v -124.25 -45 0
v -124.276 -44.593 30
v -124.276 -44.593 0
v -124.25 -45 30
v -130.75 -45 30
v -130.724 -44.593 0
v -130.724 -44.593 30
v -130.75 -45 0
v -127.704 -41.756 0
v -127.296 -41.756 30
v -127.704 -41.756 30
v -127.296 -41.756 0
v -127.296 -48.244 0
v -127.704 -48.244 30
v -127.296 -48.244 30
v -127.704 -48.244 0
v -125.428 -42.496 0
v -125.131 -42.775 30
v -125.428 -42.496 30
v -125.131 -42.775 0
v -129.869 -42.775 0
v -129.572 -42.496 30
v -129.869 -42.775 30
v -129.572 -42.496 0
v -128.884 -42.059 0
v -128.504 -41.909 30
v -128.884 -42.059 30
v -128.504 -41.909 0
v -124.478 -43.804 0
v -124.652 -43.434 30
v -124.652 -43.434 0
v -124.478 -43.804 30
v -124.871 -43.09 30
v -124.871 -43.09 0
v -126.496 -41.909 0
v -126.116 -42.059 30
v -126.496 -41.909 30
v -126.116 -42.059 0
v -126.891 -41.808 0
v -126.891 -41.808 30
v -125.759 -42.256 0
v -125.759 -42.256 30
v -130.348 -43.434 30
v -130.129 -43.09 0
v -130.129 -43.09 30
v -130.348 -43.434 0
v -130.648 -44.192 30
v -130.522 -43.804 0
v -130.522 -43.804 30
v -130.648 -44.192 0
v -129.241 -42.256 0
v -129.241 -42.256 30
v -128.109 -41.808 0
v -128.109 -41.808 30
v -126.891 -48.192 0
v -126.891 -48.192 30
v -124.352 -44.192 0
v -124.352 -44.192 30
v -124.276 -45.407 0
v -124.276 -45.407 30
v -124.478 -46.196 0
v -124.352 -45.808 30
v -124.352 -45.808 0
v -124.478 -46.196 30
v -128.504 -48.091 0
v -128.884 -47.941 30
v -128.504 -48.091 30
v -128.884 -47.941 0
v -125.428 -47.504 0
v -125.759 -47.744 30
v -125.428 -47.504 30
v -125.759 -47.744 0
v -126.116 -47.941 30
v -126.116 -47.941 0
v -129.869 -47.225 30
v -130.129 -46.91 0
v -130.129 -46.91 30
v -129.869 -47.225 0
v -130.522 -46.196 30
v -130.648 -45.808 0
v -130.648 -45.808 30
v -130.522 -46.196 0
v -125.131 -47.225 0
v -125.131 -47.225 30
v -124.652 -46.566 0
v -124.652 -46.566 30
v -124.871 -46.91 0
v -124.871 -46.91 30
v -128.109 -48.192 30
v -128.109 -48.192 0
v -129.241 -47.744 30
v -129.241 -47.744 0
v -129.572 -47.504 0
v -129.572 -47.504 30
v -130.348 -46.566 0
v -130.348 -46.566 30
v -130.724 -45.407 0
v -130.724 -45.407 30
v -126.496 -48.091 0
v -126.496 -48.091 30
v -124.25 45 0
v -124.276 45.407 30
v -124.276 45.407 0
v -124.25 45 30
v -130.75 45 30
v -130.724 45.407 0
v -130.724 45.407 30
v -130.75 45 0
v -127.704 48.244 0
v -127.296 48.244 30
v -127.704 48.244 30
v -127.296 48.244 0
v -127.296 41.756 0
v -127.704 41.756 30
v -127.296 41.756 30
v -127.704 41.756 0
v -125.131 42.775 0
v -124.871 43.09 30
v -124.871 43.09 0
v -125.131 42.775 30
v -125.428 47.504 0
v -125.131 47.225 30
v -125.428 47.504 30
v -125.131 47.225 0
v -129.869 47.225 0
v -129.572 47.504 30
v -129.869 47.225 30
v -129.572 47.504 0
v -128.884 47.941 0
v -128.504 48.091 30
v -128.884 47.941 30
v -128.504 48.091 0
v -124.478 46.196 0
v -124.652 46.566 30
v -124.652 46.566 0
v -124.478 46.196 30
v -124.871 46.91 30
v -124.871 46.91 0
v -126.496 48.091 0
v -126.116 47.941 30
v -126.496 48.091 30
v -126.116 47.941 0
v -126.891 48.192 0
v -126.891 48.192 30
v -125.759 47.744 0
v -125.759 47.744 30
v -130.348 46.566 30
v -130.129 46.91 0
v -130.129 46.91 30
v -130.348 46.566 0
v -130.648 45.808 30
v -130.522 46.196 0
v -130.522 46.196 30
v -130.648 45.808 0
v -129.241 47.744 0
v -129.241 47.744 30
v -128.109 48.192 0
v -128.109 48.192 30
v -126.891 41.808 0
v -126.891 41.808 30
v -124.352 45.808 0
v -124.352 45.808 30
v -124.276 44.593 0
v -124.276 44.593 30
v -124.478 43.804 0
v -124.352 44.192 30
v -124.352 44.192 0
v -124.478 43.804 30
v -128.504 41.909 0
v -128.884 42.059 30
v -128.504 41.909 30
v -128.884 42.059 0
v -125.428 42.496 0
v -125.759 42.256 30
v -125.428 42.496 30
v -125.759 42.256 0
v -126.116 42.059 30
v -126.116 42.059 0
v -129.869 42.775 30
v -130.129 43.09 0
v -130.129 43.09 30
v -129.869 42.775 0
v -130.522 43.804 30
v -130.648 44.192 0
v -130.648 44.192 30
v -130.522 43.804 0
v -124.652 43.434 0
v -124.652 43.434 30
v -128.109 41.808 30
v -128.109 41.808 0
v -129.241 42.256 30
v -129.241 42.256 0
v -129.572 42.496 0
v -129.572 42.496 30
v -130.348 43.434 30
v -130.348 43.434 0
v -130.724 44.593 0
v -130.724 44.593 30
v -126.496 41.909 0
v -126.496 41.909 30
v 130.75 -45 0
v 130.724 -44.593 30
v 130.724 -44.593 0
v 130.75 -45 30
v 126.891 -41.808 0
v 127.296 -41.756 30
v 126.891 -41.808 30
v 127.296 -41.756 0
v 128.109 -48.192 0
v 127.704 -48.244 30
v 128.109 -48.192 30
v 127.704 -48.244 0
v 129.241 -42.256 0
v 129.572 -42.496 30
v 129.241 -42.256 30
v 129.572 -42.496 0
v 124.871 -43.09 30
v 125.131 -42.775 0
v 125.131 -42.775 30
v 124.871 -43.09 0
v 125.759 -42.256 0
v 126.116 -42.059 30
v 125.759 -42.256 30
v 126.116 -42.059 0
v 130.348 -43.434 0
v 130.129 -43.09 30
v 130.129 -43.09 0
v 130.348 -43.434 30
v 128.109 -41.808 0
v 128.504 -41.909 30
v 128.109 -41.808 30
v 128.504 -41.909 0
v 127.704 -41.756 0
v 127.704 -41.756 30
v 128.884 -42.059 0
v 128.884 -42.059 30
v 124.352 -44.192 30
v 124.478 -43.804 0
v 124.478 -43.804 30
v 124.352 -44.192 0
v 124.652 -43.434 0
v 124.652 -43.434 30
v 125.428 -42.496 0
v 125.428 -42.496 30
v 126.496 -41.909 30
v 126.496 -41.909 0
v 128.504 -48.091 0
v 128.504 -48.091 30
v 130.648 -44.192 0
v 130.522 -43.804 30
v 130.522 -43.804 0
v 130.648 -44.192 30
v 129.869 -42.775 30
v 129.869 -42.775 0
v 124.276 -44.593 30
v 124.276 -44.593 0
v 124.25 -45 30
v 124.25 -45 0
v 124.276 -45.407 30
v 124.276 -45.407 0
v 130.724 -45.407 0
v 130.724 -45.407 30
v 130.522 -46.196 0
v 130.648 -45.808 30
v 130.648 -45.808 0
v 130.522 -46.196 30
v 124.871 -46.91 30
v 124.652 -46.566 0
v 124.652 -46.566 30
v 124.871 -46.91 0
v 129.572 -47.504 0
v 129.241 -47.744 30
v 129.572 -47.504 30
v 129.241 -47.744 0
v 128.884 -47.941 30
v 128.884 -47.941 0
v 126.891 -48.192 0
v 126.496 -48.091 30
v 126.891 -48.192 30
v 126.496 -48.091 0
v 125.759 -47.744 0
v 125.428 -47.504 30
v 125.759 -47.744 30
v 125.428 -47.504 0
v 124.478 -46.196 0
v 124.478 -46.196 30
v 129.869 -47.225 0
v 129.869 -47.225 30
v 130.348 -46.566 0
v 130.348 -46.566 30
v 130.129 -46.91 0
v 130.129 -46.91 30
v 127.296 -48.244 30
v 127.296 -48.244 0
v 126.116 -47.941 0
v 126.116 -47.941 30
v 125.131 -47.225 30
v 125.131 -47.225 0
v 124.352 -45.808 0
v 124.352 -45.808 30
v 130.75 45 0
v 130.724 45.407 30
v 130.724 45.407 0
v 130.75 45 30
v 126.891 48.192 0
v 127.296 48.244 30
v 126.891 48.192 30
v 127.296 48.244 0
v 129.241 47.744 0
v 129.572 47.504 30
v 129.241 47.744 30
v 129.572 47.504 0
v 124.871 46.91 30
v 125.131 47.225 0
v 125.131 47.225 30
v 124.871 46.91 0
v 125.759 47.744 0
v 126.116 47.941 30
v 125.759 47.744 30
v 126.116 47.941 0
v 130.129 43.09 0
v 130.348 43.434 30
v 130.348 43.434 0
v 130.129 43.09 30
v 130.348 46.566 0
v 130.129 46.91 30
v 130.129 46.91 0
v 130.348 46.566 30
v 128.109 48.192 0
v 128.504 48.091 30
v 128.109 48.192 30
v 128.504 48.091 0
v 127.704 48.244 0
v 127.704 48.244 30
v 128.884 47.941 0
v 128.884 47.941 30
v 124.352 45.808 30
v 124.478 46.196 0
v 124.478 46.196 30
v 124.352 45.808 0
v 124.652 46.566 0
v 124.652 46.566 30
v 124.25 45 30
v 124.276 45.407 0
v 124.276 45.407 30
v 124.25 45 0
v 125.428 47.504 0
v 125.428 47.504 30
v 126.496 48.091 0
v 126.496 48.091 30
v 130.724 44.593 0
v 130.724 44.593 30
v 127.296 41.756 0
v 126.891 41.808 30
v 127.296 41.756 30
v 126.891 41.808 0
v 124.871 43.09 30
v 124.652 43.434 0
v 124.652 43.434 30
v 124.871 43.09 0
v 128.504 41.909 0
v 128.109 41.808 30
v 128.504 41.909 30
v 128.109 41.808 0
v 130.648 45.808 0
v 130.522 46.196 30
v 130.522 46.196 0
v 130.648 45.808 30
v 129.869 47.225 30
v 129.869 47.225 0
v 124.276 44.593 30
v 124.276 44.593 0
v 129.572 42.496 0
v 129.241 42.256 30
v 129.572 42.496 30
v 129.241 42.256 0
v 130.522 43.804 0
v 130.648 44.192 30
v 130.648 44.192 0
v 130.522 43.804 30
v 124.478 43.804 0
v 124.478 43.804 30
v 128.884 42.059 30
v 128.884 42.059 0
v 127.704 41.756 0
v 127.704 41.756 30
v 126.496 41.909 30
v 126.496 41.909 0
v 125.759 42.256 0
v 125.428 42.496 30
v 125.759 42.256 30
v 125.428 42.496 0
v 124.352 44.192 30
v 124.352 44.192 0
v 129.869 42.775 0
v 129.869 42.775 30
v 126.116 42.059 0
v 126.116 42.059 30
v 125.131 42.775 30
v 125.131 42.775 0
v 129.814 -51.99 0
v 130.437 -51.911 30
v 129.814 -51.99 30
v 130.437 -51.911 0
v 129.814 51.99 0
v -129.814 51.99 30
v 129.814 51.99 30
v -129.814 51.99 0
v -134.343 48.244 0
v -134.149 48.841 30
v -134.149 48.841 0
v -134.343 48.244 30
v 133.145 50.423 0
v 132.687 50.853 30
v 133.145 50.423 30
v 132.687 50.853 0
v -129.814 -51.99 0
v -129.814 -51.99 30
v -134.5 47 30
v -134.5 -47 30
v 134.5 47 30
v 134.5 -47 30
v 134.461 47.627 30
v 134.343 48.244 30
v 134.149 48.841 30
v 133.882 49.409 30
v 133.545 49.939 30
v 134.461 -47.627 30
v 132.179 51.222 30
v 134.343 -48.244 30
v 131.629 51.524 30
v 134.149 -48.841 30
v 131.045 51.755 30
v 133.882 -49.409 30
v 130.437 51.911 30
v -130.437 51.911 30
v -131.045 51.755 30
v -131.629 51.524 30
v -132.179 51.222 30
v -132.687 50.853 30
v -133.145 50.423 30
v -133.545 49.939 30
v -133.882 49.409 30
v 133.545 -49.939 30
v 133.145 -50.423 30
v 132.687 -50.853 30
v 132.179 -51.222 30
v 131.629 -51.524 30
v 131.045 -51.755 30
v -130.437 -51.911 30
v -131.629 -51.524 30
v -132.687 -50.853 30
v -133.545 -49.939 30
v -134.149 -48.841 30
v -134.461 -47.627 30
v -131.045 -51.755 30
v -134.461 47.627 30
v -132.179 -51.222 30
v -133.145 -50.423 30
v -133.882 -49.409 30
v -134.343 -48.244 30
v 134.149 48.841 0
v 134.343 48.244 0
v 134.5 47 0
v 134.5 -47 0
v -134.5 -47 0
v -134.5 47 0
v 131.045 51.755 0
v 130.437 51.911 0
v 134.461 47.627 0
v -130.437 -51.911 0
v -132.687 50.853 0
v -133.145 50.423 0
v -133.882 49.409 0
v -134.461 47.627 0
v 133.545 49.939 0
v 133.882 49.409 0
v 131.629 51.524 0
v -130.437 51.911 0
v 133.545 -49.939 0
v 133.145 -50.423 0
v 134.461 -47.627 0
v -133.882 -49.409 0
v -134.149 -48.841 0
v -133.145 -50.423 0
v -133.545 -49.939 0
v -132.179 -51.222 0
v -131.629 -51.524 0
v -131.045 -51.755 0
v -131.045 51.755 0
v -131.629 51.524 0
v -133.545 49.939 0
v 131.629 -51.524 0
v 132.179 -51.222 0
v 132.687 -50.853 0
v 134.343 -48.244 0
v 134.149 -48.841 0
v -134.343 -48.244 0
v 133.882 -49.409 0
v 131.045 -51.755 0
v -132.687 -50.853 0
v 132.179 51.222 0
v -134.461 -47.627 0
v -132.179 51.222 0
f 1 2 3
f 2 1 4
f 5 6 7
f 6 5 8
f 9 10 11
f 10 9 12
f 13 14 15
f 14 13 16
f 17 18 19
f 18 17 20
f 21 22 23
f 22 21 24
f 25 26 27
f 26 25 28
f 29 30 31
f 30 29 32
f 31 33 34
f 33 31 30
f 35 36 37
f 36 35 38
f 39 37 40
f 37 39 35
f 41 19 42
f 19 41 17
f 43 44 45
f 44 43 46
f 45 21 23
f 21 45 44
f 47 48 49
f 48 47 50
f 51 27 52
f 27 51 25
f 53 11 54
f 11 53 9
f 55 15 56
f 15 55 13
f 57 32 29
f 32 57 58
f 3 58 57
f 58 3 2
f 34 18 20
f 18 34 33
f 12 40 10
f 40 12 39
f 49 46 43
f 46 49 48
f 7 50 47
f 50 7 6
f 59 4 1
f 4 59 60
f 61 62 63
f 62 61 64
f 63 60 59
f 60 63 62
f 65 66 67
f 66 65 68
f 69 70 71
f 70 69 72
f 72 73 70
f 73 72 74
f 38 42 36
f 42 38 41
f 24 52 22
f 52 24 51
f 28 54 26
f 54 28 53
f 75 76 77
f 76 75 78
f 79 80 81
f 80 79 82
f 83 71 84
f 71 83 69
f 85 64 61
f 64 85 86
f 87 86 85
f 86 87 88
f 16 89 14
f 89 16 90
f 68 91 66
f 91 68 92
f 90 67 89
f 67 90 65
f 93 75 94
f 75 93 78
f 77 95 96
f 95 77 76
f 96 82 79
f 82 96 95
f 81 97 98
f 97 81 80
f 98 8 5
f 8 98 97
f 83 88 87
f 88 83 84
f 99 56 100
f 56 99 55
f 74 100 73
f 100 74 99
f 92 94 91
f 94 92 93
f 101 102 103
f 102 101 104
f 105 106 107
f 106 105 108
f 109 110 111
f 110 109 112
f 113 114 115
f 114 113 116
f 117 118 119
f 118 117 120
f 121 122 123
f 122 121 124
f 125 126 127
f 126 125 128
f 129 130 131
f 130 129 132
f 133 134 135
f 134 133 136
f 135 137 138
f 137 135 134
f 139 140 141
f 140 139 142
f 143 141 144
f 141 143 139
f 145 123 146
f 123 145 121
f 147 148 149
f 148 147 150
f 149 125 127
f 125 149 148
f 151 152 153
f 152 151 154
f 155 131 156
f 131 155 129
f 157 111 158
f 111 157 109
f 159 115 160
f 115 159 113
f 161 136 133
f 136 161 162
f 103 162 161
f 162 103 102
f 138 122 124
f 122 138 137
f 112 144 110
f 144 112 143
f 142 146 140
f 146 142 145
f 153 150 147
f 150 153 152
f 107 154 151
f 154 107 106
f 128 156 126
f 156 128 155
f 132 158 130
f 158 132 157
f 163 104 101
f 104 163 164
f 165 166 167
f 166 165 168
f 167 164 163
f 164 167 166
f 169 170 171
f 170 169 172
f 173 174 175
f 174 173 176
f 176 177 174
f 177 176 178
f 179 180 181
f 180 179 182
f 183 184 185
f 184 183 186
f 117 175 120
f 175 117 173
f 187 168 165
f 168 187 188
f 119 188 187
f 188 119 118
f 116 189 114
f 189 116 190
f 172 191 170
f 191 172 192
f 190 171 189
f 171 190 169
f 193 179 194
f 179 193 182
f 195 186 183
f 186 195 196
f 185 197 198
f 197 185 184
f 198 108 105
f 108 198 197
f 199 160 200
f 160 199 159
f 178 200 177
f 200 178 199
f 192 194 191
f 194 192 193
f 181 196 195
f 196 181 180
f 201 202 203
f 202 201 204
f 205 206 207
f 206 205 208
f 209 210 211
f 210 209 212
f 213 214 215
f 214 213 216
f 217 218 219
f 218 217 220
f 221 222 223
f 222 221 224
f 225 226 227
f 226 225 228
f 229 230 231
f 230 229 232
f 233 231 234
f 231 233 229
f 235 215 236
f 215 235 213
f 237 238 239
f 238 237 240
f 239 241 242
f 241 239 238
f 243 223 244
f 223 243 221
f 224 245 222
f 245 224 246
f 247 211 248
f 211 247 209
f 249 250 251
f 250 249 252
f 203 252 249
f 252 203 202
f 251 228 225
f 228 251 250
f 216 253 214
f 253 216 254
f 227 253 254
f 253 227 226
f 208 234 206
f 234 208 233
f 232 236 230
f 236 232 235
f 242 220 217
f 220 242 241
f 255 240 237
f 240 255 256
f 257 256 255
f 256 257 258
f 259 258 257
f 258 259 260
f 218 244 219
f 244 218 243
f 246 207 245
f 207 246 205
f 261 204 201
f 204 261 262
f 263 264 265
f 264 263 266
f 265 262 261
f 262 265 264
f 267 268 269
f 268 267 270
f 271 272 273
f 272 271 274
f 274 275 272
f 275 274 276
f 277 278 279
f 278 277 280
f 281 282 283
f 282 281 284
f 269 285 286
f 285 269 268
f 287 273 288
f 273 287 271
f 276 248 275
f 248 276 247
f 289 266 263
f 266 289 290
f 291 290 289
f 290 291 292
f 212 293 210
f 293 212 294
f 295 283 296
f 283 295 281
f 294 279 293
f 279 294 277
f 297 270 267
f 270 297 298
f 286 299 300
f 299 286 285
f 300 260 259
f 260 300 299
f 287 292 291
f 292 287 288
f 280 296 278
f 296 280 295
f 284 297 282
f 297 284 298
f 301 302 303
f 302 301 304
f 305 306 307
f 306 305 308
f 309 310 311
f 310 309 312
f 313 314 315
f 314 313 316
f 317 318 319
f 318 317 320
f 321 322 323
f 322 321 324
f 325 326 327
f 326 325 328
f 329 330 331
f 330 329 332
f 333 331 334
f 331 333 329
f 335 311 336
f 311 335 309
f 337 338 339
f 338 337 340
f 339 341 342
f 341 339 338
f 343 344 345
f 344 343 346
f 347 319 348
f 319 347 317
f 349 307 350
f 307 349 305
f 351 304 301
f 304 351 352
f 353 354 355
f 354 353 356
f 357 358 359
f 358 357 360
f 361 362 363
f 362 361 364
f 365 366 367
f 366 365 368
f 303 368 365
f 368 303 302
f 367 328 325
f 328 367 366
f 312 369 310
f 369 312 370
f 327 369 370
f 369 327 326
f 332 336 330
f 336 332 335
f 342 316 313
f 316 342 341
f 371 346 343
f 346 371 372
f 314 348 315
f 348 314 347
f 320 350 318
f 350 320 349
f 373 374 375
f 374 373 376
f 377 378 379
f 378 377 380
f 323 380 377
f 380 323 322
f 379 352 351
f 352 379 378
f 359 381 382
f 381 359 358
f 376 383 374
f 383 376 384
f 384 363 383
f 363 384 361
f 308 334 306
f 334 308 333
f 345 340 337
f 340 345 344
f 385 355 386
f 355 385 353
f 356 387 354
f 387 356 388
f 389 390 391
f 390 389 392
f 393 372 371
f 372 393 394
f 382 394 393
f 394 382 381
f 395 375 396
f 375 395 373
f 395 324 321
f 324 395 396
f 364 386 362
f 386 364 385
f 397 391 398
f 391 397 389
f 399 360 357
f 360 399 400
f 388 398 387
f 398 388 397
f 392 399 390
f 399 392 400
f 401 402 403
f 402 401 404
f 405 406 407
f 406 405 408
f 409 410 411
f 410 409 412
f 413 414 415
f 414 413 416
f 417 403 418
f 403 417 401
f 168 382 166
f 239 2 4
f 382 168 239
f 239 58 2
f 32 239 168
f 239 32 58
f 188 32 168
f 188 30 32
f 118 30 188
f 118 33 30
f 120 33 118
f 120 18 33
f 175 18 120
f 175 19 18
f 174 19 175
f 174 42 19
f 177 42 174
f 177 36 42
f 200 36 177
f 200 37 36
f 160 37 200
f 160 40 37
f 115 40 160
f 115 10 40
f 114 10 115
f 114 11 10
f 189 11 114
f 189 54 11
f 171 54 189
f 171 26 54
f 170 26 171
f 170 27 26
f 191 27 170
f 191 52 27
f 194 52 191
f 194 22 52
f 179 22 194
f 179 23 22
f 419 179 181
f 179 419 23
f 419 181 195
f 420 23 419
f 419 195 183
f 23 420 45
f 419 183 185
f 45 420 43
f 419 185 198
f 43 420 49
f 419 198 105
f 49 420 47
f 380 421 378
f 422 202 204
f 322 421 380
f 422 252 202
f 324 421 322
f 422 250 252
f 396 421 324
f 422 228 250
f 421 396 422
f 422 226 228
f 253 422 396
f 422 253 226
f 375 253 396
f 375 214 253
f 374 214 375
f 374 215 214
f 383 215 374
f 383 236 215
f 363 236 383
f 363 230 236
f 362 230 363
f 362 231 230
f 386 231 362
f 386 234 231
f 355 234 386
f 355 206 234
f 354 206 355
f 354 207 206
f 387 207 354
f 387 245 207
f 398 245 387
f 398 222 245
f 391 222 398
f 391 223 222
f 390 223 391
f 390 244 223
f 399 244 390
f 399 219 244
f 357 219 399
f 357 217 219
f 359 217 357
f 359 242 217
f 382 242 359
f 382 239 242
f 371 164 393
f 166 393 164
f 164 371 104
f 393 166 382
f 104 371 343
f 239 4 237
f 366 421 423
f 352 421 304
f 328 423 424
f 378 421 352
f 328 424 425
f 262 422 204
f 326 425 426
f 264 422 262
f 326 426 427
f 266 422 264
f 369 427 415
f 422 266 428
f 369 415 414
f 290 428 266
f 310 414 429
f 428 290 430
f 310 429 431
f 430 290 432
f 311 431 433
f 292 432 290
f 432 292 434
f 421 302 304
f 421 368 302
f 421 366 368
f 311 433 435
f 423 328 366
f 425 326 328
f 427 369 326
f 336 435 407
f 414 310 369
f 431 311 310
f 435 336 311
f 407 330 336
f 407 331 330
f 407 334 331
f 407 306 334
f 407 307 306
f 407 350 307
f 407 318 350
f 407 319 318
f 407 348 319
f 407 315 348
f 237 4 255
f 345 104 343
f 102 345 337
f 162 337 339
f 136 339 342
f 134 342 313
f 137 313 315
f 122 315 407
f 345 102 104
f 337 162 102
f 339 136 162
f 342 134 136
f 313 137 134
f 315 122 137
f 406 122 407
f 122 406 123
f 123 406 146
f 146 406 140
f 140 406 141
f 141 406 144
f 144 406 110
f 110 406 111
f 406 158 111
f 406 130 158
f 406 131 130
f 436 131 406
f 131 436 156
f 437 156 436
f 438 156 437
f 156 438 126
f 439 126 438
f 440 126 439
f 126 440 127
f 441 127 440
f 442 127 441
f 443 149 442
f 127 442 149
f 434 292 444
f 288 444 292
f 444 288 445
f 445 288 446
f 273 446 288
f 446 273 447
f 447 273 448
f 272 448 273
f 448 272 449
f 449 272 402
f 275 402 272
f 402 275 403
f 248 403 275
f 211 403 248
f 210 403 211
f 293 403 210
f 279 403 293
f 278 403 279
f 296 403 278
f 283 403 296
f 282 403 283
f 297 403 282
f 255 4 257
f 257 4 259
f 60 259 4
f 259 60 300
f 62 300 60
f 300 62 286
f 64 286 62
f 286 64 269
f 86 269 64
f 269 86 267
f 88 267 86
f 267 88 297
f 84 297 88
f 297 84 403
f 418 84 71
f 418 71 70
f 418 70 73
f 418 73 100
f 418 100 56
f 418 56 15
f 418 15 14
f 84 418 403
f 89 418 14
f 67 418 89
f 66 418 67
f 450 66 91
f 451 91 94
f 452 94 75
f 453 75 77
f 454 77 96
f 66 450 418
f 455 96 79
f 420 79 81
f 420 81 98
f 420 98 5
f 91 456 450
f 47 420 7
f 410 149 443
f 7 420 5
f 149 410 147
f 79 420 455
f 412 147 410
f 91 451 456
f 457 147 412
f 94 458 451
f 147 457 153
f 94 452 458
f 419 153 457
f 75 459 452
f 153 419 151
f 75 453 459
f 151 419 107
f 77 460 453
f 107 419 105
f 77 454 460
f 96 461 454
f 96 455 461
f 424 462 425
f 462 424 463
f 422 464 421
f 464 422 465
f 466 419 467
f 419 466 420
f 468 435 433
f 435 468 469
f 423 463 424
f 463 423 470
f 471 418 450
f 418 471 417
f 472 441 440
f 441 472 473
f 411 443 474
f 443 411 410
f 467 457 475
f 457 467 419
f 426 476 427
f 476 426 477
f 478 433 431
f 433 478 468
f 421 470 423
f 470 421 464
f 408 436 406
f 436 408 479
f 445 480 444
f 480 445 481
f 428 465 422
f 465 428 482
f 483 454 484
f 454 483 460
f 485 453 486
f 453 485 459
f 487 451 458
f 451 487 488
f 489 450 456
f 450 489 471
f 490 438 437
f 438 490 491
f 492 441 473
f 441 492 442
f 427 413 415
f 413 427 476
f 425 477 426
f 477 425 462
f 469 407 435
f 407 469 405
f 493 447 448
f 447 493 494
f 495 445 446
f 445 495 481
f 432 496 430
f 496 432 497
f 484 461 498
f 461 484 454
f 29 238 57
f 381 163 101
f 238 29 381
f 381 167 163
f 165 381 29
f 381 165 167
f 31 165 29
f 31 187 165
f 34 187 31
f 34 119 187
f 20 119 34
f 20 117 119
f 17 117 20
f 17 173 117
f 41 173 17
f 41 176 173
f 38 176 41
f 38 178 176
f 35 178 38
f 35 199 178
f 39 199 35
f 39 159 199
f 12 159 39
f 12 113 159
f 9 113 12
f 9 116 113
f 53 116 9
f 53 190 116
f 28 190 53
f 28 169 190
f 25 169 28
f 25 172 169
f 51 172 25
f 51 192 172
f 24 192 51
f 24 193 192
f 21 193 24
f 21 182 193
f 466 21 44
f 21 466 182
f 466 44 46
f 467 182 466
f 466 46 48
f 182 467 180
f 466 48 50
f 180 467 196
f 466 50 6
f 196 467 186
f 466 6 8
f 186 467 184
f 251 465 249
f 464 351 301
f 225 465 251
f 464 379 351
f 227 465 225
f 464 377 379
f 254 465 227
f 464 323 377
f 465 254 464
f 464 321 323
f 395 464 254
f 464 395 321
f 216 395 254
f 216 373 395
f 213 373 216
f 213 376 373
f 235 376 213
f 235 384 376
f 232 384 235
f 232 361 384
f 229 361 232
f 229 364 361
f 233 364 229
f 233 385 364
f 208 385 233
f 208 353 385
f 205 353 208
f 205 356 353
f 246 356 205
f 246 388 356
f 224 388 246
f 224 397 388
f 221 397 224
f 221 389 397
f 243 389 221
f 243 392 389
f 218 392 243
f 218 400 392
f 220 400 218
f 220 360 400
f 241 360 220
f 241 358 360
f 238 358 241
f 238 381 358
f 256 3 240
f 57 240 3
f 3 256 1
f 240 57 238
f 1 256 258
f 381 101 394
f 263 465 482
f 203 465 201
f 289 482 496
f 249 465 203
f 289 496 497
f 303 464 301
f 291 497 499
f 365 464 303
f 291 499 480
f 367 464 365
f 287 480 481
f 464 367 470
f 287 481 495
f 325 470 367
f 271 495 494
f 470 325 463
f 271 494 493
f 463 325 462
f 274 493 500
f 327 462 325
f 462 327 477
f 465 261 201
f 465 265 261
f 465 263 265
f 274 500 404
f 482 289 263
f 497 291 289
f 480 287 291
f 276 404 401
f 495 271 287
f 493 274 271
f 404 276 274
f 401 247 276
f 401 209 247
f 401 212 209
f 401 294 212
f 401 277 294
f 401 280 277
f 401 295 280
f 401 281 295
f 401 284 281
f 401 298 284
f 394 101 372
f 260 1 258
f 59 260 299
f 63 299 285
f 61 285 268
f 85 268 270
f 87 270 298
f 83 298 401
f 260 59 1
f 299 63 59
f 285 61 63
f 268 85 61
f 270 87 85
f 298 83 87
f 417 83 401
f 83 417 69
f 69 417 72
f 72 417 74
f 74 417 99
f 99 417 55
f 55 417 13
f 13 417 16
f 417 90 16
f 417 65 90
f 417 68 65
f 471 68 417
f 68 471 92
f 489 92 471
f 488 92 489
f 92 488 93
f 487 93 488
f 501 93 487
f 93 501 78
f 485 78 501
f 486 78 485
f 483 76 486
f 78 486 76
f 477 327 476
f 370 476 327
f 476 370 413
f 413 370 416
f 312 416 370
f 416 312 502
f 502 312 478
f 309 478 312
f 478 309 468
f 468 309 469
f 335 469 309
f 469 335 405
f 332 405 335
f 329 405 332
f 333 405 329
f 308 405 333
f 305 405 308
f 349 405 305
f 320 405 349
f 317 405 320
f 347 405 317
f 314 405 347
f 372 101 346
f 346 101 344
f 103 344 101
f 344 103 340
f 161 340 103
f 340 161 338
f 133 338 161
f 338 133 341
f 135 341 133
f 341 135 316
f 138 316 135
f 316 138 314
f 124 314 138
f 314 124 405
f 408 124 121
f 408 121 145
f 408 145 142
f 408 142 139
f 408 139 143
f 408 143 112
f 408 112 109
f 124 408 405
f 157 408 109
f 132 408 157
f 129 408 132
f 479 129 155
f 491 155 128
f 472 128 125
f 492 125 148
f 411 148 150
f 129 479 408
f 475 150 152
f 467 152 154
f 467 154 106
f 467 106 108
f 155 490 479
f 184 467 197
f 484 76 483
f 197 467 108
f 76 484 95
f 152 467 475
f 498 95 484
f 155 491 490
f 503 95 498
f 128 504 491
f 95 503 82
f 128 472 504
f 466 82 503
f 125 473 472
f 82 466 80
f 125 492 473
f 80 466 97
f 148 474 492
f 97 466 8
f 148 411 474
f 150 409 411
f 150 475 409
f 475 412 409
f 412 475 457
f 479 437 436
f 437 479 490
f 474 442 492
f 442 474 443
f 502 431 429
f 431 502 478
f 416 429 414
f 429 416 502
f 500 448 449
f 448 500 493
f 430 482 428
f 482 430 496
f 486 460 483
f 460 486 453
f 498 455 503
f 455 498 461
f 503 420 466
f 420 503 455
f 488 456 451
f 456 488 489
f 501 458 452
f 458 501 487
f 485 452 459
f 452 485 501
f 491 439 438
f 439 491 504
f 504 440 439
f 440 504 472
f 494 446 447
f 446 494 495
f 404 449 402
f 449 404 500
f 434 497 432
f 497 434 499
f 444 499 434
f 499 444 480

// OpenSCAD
$fn = 50;


difference() {
	union() {
		hull() {
			translate(v = [-129.5000000000, 47.0000000000, 0]) {
				cylinder(h = 30, r = 5);
			}
			translate(v = [129.5000000000, 47.0000000000, 0]) {
				cylinder(h = 30, r = 5);
			}
			translate(v = [-129.5000000000, -47.0000000000, 0]) {
				cylinder(h = 30, r = 5);
			}
			translate(v = [129.5000000000, -47.0000000000, 0]) {
				cylinder(h = 30, r = 5);
			}
		}
	}
	union() {
		translate(v = [-127.5000000000, -45.0000000000, -100.0000000000]) {
			cylinder(h = 200, r = 3.2500000000);
		}
		translate(v = [-127.5000000000, 45.0000000000, -100.0000000000]) {
			cylinder(h = 200, r = 3.2500000000);
		}
		translate(v = [127.5000000000, -45.0000000000, -100.0000000000]) {
			cylinder(h = 200, r = 3.2500000000);
		}
		translate(v = [127.5000000000, 45.0000000000, -100.0000000000]) {
			cylinder(h = 200, r = 3.2500000000);
		}
	}
}
